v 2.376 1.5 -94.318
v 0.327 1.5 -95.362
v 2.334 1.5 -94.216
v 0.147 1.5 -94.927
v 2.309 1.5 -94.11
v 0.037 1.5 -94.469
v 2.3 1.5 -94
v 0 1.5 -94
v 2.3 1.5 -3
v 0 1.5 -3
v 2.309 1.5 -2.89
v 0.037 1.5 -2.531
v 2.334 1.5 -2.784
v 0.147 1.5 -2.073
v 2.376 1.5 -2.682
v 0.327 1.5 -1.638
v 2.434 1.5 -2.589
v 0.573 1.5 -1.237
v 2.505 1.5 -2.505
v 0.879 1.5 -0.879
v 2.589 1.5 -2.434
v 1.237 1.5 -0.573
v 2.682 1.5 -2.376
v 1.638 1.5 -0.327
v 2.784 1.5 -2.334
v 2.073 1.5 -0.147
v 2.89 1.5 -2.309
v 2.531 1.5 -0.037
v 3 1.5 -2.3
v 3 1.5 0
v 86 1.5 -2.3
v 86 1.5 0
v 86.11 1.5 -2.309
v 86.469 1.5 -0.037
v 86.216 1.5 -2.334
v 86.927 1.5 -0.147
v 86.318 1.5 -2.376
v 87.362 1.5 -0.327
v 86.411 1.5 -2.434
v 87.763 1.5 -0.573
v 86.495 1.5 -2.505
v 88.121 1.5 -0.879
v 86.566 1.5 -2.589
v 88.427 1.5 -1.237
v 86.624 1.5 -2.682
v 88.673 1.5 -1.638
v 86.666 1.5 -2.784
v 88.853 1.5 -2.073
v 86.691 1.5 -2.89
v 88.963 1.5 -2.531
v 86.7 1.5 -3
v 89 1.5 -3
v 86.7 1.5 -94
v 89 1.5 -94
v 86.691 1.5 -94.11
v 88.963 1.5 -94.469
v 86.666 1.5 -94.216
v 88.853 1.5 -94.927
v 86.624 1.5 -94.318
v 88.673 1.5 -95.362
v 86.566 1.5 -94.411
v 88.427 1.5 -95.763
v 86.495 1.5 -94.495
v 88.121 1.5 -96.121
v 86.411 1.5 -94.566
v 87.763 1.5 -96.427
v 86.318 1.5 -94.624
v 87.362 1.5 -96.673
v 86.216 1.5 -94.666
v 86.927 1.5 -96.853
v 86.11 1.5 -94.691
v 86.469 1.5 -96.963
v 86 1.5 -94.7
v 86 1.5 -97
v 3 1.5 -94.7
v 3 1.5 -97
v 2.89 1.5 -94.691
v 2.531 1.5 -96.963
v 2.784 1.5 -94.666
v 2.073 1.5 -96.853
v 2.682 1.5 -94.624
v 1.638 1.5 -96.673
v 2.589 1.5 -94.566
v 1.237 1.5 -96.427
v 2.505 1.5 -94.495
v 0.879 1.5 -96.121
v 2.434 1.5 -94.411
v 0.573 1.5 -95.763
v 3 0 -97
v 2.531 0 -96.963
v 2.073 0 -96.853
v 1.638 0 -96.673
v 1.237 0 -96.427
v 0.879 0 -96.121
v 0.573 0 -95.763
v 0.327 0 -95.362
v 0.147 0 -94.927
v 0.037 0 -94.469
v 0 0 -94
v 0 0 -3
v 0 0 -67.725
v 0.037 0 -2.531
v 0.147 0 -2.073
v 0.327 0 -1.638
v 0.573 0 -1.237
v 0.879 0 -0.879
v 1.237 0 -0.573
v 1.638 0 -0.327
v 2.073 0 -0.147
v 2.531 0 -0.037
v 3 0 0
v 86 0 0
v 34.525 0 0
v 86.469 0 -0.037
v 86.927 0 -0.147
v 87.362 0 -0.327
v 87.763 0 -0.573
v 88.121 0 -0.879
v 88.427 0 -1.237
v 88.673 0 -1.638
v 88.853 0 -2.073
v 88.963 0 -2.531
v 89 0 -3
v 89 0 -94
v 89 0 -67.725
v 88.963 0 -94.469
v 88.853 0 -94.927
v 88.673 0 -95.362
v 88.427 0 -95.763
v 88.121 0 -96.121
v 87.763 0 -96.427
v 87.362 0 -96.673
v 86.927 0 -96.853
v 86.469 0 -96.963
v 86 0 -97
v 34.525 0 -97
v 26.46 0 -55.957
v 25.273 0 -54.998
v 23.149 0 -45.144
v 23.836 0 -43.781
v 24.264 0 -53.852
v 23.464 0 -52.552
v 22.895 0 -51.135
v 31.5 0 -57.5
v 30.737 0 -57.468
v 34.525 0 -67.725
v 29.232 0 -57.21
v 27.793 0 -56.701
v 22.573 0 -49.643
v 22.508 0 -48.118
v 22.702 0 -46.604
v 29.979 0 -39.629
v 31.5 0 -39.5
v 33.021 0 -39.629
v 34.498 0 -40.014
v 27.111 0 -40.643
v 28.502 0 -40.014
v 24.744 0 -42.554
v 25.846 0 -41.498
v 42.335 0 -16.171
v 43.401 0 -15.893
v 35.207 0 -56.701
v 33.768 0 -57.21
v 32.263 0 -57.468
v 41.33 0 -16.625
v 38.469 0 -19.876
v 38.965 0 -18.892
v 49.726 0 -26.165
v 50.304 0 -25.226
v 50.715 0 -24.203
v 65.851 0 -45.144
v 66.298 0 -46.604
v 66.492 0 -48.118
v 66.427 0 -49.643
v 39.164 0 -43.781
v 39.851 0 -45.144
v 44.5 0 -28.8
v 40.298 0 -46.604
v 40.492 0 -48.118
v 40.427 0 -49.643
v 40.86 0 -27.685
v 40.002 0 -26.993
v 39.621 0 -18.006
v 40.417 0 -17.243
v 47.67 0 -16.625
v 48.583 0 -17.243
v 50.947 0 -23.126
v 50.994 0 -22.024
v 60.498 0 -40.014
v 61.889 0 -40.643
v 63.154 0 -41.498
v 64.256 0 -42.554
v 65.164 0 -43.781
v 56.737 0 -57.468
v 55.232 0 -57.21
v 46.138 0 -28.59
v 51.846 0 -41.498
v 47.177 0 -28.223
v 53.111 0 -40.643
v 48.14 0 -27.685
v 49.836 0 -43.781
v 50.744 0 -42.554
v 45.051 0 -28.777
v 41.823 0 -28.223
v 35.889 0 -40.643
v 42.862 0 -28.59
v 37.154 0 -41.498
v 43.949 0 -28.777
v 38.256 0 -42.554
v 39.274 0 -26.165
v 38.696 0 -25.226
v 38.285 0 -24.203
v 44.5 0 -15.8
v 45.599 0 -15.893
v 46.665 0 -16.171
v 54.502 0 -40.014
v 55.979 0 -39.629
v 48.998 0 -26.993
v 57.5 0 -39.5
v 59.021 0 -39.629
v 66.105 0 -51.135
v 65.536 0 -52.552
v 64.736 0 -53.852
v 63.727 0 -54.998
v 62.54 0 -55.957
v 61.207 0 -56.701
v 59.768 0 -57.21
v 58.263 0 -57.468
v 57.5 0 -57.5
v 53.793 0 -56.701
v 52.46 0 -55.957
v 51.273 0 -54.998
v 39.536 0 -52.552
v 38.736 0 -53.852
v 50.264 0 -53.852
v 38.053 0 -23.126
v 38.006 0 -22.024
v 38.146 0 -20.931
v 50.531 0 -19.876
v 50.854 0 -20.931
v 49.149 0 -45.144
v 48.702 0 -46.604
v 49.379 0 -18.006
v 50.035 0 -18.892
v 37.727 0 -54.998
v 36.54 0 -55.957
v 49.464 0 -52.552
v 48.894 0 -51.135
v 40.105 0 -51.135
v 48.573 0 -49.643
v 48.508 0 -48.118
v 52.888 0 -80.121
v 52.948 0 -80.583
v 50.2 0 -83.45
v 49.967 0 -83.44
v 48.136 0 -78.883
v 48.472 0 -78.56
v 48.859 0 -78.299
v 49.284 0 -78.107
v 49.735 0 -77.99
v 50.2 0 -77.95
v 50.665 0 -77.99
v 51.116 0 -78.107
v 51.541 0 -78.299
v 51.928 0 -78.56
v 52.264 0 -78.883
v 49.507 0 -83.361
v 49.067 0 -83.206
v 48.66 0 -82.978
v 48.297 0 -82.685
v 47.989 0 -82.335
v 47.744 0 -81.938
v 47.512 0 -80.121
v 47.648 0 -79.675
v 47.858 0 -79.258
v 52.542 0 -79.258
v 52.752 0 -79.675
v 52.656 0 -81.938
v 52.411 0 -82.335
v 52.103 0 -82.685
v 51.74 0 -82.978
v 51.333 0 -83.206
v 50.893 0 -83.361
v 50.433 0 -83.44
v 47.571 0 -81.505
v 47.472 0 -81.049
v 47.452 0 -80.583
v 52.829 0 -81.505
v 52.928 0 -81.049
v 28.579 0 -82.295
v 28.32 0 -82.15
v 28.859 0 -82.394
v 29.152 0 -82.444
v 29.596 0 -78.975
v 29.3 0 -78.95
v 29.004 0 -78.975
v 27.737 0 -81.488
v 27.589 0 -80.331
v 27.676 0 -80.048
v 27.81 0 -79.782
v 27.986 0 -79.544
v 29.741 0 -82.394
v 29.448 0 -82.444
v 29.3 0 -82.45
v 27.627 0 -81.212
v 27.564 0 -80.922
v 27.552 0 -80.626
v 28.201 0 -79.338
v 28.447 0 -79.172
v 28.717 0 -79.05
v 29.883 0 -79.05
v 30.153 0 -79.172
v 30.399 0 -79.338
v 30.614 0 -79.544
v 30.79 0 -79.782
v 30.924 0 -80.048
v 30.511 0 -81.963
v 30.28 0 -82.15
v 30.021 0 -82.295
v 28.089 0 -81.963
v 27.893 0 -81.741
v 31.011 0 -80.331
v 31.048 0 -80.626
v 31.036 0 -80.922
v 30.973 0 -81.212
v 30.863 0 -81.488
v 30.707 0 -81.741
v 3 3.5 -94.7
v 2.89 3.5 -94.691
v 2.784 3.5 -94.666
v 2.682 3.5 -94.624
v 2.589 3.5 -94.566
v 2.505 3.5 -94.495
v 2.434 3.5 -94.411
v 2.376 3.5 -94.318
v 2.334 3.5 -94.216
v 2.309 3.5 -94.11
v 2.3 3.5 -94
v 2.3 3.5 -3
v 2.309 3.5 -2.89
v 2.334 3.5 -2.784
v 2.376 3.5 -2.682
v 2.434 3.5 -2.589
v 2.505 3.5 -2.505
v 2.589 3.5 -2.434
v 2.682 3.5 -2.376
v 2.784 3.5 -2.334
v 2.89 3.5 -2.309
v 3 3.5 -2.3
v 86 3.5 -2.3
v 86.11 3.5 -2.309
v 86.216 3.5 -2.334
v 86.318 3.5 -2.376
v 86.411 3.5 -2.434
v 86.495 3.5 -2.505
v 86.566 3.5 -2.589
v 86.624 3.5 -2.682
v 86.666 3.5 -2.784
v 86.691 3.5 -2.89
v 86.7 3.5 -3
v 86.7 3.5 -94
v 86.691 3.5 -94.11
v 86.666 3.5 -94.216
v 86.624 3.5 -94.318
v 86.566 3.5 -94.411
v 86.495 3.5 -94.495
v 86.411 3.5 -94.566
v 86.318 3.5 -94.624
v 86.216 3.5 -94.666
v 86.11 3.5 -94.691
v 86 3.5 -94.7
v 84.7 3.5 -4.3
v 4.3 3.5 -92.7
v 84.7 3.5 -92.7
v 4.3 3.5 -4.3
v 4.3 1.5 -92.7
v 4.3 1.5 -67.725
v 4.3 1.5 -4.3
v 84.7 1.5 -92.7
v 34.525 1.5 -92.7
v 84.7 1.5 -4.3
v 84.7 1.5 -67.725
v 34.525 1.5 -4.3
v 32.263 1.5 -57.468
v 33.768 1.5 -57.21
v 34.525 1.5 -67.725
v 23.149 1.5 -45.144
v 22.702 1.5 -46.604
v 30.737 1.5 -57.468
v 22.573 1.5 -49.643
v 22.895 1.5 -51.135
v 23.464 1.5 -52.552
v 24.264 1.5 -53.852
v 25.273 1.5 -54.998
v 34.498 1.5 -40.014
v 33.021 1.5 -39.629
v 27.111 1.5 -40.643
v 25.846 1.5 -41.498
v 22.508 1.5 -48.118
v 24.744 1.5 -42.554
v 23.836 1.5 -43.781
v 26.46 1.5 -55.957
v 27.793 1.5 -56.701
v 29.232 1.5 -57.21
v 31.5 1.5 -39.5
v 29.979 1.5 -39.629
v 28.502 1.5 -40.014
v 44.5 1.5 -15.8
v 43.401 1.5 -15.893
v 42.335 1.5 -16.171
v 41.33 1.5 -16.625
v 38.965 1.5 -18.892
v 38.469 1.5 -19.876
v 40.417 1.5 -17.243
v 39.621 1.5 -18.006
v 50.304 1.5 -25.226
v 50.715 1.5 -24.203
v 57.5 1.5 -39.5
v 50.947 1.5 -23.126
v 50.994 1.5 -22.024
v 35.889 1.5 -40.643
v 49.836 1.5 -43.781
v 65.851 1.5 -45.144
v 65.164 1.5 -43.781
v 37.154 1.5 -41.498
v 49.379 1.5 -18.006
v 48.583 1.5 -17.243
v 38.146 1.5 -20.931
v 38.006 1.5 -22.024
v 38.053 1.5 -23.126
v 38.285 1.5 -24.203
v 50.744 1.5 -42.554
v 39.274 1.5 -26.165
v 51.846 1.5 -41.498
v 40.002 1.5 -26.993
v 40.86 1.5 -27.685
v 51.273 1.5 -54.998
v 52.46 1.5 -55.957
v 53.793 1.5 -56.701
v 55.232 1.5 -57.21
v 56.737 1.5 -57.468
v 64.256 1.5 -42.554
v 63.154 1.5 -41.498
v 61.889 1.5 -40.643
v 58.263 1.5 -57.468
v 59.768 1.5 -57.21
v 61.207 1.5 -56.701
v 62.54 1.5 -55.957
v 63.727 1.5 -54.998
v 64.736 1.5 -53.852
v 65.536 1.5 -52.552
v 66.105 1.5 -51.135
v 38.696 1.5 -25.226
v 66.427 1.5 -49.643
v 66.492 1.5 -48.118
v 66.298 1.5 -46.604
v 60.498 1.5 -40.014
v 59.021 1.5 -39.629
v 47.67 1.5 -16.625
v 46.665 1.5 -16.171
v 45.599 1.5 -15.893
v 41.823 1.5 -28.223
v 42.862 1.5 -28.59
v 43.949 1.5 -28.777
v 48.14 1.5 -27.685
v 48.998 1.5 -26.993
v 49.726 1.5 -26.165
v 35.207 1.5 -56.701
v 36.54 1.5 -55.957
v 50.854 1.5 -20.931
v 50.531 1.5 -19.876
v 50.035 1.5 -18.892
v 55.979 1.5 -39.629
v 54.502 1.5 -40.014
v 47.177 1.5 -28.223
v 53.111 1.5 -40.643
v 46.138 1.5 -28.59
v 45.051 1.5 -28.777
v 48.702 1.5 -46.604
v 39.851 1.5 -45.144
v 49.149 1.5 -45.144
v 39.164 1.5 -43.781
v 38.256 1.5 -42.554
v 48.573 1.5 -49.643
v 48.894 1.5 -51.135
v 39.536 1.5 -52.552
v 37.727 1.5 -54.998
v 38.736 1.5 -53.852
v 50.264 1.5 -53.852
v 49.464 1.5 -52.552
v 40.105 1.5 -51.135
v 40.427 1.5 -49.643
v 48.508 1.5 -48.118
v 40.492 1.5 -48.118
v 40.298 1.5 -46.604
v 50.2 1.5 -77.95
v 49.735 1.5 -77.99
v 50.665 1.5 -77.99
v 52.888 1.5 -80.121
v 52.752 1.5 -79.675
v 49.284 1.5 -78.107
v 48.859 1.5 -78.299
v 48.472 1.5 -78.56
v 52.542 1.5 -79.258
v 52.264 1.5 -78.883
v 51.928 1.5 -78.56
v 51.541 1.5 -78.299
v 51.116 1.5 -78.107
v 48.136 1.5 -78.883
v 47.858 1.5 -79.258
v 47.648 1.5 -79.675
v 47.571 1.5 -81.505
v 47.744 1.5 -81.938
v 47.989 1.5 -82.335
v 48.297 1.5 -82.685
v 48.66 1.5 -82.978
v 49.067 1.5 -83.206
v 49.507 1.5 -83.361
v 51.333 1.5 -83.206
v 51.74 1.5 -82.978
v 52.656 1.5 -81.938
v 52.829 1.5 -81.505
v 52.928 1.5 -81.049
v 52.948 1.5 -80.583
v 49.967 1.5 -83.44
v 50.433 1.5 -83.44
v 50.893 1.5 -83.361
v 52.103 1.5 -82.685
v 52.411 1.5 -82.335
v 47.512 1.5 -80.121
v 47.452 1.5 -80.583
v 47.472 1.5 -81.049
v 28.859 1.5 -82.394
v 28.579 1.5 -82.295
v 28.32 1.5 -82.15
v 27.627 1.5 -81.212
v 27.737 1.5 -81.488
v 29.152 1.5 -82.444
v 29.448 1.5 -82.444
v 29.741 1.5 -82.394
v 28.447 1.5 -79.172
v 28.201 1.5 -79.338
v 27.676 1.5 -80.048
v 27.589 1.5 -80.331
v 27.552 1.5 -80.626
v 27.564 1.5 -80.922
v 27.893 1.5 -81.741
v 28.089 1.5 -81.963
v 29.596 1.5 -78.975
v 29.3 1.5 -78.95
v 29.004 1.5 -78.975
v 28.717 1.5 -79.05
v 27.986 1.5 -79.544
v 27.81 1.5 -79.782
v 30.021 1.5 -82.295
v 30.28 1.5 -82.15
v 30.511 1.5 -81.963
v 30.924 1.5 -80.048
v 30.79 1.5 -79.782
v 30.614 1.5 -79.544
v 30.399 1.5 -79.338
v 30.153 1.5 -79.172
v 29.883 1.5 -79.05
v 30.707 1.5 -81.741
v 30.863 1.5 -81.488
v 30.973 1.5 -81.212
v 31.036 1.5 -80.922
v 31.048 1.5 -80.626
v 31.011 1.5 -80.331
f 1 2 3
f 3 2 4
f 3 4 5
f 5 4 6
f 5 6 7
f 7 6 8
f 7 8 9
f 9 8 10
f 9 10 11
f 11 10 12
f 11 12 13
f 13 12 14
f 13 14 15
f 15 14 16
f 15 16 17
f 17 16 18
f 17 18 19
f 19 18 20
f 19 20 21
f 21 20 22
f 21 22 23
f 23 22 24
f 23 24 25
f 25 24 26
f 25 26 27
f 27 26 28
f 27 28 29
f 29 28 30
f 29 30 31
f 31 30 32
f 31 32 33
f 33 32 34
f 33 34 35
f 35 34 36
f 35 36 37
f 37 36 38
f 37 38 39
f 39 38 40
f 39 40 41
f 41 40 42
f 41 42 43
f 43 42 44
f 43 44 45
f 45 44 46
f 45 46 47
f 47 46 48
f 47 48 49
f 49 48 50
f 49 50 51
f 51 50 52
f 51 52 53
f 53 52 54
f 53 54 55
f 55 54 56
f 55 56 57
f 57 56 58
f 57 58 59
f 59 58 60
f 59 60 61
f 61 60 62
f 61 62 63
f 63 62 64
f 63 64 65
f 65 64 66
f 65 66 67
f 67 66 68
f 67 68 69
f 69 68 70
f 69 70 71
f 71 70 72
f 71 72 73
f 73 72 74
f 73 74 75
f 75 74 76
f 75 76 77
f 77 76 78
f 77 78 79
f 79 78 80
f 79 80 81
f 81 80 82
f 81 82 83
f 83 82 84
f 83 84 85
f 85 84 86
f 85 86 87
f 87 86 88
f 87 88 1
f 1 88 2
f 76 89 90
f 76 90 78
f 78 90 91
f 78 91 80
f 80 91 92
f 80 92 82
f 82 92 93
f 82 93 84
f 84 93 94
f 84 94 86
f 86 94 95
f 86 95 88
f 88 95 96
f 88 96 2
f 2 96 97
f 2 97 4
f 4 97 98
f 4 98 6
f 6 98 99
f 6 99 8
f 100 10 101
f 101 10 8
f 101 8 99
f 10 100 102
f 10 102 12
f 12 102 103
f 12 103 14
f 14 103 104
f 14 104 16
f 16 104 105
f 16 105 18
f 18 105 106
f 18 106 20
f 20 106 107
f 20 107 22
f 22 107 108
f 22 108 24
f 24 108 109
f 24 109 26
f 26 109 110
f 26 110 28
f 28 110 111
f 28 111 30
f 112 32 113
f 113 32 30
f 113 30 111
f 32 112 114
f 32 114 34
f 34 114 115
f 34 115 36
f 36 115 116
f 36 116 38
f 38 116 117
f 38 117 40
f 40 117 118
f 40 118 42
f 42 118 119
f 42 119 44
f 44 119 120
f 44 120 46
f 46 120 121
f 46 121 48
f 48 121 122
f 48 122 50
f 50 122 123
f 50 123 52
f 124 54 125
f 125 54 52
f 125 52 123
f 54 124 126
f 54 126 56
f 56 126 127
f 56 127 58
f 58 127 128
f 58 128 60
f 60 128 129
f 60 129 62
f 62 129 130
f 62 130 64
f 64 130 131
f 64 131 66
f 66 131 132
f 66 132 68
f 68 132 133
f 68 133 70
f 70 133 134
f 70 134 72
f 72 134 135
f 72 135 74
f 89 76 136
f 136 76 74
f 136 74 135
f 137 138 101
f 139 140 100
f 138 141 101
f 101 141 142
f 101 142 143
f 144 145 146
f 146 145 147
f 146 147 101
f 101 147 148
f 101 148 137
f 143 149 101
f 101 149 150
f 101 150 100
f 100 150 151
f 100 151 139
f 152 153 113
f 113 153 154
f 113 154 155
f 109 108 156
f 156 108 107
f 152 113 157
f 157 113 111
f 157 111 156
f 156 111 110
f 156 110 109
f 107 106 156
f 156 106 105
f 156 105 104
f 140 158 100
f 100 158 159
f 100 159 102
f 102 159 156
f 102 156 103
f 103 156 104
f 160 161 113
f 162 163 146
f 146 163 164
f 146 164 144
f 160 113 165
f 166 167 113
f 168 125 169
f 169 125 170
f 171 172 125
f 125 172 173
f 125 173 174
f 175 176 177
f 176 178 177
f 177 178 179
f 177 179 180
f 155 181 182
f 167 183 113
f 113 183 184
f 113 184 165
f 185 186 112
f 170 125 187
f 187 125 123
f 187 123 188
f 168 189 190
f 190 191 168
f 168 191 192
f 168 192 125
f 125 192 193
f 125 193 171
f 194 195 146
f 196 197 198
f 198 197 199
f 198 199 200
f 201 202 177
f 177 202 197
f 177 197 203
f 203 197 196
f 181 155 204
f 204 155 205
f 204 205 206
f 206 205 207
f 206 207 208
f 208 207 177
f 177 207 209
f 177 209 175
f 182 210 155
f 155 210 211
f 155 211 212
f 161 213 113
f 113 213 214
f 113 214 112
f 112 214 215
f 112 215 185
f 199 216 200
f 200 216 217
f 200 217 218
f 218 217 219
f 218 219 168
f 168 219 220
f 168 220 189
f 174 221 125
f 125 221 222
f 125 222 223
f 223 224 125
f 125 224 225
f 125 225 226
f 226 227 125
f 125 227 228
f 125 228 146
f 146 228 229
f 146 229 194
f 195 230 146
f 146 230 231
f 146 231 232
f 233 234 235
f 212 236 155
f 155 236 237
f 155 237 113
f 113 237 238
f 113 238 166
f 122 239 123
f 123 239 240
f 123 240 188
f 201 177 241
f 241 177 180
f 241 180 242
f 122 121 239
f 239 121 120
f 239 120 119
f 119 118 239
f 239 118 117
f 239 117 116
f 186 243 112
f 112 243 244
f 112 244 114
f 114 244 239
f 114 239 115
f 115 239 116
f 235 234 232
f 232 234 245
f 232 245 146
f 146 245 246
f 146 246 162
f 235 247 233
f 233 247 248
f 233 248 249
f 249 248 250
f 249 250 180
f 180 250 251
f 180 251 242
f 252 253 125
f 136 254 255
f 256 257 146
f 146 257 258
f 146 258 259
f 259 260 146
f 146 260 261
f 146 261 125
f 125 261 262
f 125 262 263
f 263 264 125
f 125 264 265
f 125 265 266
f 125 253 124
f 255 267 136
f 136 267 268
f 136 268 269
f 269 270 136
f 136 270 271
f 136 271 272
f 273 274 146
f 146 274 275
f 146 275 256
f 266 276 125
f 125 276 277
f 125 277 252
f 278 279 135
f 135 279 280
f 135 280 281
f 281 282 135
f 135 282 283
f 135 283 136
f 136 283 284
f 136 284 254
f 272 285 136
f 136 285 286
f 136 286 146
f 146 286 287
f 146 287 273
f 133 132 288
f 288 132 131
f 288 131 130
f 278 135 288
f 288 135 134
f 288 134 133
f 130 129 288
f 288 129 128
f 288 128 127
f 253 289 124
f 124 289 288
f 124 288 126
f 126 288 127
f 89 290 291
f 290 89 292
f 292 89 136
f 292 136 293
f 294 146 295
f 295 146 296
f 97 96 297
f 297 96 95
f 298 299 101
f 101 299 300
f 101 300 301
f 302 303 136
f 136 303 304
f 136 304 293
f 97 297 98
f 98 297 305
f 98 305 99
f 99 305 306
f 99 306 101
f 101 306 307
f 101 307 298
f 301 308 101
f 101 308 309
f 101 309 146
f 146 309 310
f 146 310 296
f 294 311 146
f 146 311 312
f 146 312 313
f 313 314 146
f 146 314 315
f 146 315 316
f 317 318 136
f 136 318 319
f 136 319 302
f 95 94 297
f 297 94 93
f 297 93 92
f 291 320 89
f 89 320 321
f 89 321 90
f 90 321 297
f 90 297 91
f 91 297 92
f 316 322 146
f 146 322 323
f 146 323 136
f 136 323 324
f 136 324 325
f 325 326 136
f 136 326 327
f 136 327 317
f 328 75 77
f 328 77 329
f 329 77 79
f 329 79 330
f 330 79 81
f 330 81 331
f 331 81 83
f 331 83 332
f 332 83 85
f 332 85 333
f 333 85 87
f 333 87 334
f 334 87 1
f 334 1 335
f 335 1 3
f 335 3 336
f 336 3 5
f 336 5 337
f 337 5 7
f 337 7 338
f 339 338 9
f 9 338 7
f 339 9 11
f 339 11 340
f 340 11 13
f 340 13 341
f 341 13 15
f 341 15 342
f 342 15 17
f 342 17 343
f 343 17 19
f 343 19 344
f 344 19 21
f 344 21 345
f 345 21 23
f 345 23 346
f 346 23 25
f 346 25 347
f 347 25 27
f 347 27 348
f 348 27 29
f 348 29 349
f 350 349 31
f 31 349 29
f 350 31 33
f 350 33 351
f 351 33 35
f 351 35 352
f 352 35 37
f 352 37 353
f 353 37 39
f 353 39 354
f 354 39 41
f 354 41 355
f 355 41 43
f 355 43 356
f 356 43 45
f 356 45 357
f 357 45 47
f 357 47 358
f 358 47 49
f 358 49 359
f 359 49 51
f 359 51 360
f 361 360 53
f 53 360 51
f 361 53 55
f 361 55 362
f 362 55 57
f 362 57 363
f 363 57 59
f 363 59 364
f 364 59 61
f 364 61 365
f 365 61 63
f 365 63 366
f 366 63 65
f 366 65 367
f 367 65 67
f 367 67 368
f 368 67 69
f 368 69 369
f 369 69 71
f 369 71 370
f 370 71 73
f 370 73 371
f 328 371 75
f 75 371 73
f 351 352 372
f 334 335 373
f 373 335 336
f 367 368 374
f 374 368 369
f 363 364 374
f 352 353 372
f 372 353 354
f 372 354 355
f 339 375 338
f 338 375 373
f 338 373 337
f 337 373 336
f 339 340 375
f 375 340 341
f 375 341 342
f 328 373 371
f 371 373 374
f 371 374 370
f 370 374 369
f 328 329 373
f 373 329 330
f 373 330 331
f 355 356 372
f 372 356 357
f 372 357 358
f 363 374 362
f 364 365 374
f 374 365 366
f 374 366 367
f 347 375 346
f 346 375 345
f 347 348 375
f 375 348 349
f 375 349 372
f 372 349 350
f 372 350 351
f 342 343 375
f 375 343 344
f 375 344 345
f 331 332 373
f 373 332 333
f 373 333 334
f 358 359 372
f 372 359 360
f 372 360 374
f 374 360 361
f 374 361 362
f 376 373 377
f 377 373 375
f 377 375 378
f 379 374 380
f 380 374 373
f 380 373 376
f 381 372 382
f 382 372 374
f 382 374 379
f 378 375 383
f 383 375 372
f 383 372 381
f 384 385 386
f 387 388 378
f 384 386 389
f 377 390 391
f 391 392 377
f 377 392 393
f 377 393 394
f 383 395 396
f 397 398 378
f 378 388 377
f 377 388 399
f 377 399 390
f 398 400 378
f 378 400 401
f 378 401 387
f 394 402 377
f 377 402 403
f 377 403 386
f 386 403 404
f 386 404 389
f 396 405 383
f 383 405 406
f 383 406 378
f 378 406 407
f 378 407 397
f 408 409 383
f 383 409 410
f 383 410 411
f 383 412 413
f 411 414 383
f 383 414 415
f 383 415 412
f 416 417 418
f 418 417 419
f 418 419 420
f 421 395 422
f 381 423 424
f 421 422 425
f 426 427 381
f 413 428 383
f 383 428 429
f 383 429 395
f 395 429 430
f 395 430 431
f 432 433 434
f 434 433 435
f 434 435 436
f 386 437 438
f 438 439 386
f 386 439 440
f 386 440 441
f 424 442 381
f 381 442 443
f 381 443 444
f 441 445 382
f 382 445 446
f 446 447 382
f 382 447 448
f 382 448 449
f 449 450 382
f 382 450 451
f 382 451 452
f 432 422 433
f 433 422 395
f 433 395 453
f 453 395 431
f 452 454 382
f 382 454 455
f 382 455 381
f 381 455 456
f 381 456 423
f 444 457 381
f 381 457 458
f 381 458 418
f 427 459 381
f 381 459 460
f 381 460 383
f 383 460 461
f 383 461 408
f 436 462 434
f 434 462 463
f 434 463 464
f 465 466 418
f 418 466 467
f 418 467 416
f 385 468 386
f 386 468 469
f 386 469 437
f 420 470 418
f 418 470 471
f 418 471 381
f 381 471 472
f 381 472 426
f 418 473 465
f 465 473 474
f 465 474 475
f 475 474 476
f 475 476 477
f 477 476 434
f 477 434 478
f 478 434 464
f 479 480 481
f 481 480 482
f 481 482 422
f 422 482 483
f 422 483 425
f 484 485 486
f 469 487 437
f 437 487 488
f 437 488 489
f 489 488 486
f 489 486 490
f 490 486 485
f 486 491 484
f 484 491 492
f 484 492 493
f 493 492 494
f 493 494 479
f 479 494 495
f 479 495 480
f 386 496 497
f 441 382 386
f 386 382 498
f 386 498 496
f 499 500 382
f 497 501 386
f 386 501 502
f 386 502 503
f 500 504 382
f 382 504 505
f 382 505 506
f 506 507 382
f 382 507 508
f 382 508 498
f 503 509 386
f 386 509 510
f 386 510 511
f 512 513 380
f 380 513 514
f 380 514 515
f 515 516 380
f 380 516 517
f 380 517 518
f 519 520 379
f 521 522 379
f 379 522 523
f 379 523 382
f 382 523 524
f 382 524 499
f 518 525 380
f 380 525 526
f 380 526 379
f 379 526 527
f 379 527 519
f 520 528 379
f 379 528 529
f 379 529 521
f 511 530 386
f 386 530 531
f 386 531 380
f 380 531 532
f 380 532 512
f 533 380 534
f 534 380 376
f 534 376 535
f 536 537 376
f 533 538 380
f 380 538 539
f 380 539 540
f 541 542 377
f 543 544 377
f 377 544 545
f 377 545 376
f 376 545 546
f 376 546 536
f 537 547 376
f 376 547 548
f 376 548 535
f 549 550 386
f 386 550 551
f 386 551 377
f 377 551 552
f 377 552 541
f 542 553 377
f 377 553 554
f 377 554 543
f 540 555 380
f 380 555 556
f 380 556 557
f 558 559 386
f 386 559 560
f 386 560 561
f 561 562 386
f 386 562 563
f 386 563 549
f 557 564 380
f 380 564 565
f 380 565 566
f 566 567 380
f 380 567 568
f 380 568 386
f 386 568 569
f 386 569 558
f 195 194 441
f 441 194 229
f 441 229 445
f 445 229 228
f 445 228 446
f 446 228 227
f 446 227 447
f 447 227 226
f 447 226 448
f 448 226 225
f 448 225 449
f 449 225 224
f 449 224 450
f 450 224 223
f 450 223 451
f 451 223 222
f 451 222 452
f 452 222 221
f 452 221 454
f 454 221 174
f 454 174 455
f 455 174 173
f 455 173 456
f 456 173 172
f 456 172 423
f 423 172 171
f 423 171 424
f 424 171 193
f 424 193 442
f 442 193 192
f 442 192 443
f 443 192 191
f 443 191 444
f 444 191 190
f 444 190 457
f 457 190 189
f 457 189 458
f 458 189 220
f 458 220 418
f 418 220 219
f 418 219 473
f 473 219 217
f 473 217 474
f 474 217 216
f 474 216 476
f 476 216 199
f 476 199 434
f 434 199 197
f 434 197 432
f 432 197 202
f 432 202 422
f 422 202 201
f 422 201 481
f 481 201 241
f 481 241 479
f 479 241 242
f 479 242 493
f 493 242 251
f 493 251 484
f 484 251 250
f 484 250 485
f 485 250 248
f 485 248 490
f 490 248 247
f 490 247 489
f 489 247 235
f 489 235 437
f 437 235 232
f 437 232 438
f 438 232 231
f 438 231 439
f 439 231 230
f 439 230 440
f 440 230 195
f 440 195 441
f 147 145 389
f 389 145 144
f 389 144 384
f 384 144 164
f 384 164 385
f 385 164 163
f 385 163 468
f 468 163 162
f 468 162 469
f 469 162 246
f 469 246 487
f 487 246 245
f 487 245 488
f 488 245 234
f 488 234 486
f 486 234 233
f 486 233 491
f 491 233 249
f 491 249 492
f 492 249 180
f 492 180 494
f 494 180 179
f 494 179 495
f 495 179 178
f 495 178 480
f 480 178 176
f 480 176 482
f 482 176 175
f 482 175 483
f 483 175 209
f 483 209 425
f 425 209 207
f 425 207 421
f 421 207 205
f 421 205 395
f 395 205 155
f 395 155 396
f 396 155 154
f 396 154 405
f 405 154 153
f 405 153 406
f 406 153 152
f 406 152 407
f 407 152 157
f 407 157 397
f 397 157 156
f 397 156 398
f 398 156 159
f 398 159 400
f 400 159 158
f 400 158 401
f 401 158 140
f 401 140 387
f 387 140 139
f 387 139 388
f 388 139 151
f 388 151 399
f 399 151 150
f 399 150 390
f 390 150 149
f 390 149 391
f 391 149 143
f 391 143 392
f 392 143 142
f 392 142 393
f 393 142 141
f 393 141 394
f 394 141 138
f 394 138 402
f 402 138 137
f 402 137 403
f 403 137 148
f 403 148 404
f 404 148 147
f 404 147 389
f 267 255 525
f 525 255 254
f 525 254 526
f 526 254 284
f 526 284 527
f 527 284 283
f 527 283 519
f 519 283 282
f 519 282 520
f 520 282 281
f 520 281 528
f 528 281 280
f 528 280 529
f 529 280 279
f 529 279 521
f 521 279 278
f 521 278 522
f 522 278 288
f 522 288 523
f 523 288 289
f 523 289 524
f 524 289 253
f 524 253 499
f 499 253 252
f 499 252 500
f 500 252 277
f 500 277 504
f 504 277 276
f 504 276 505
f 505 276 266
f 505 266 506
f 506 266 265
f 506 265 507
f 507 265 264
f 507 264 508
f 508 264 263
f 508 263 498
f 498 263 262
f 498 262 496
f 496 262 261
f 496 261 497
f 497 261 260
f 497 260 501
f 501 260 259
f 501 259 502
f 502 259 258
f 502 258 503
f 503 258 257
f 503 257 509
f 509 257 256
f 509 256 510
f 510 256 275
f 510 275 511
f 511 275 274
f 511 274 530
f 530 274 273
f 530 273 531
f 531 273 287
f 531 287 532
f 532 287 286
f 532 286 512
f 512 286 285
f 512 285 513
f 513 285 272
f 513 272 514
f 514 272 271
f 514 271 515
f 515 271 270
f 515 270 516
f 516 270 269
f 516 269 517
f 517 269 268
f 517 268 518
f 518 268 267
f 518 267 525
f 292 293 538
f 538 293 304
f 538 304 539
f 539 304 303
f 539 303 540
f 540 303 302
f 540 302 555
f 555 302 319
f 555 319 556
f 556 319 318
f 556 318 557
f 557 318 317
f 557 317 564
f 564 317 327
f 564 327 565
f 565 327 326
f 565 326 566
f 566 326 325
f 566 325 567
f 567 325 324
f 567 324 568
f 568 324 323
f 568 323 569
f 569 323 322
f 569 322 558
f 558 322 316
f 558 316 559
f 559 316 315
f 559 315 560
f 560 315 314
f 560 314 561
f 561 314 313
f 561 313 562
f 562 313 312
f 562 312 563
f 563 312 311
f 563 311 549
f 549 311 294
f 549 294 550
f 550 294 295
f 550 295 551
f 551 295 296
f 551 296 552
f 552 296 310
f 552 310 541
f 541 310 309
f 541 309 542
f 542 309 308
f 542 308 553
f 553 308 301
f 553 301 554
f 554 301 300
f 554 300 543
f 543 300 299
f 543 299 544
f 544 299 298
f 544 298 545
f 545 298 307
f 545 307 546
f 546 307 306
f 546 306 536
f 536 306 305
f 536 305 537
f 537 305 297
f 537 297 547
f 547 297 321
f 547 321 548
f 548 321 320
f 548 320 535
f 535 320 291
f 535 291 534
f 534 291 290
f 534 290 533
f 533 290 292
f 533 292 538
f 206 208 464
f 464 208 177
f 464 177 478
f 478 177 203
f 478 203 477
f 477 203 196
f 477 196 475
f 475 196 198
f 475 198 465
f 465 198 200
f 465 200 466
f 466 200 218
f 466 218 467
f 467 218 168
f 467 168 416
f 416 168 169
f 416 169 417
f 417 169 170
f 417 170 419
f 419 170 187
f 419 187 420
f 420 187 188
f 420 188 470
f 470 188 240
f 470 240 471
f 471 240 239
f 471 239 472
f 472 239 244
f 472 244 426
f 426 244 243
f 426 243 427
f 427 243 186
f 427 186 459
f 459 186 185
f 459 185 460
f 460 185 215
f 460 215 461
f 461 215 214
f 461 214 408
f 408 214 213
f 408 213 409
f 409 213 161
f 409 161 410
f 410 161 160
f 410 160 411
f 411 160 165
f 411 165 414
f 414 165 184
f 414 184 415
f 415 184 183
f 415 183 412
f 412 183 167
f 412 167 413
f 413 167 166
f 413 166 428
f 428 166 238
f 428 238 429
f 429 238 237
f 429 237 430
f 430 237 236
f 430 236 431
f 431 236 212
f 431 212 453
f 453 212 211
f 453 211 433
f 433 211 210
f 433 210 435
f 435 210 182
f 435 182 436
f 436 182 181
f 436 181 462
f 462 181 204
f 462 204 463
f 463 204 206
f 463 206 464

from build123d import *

# Parameters (mm, degrees)
BOSS_EXTRUDE1_DEPTH = 1.5
BOSS_EXTRUDE2_DEPTH = 2
SKETCH3_W           = 80.4
SKETCH3_H           = 88.4
CUT_EXTRUDE1_DEPTH  = 2
SKETCH4_R           = 9
CUT_EXTRUDE2_DEPTH  = 2
SKETCH5_R           = 1.75
SKETCH5_R_2         = 2.75
CUT_EXTRUDE3_DEPTH  = 2
SKETCH6_R           = 6.5
CUT_EXTRUDE4_DEPTH  = 2


with BuildPart() as part:
    # Sketch1 → Boss-Extrude1 (new body)
    with BuildSketch(Plane(origin=(0, 0, 0), x_dir=(1, 0, 0), z_dir=(0, 1, 0))):
        with BuildLine():
            Line((3, 0), (86, 0))
            ThreePointArc((86, 0), (88.121320344, 0.878679656), (89, 3))
            Line((89, 3), (89, 94))
            ThreePointArc((89, 94), (88.121320344, 96.121320344), (86, 97))
            Line((86, 97), (3, 97))
            ThreePointArc((3, 97), (0.878679656, 96.121320344), (0, 94))
            Line((0, 94), (0, 3))
            ThreePointArc((0, 3), (0.878679656, 0.878679656), (3, 0))
        make_face()
    extrude(amount=BOSS_EXTRUDE1_DEPTH)

    # Sketch2 → Boss-Extrude2 (add)
    with BuildSketch(Plane(origin=(0, 1.5, 0), x_dir=(1, 0, 0), z_dir=(0, 1, 0))):
        with BuildLine():
            Line((2.3, 94), (2.3, 3))
            ThreePointArc((2.3, 3), (2.505025253, 2.505025253), (3, 2.3))
            Line((3, 2.3), (86, 2.3))
            ThreePointArc((86, 2.3), (86.494974747, 2.505025253), (86.7, 3))
            Line((86.7, 3), (86.7, 94))
            ThreePointArc((86.7, 94), (86.494974747, 94.494974747), (86, 94.7))
            Line((86, 94.7), (3, 94.7))
            ThreePointArc((3, 94.7), (2.505025253, 94.494974747), (2.3, 94))
        make_face()
    extrude(amount=BOSS_EXTRUDE2_DEPTH)

    # Sketch3 → Cut-Extrude1 (cut)
    with BuildSketch(Plane(origin=(0, 3.5, 0), x_dir=(1, 0, 0), z_dir=(0, 1, 0))):
        with Locations((44.5, 48.5)):
            Rectangle(SKETCH3_W, SKETCH3_H)
    extrude(amount=-CUT_EXTRUDE1_DEPTH, mode=Mode.SUBTRACT)

    # Sketch4 → Cut-Extrude2 (cut)
    with BuildSketch(Plane(origin=(0, 1.5, 0), x_dir=(1, 0, 0), z_dir=(0, 1, 0))):
        with Locations((31.5, 48.5)):
            Circle(SKETCH4_R)
        with Locations((57.5, 48.5)):
            Circle(SKETCH4_R)
    extrude(amount=-CUT_EXTRUDE2_DEPTH, mode=Mode.SUBTRACT)

    # Sketch5 → Cut-Extrude3 (cut)
    with BuildSketch(Plane(origin=(0, 1.5, 0), x_dir=(1, 0, 0), z_dir=(0, 1, 0))):
        with Locations((29.3, 80.7)):
            Circle(SKETCH5_R)
        with Locations((50.2, 80.7)):
            Circle(SKETCH5_R_2)
    extrude(amount=-CUT_EXTRUDE3_DEPTH, mode=Mode.SUBTRACT)

    # Sketch6 → Cut-Extrude4 (cut)
    with BuildSketch(Plane(origin=(0, 1.5, 0), x_dir=(1, 0, 0), z_dir=(0, 1, 0))):
        with Locations((44.5, 22.3)):
            Circle(SKETCH6_R)
    extrude(amount=-CUT_EXTRUDE4_DEPTH, mode=Mode.SUBTRACT)


solid = part.part
